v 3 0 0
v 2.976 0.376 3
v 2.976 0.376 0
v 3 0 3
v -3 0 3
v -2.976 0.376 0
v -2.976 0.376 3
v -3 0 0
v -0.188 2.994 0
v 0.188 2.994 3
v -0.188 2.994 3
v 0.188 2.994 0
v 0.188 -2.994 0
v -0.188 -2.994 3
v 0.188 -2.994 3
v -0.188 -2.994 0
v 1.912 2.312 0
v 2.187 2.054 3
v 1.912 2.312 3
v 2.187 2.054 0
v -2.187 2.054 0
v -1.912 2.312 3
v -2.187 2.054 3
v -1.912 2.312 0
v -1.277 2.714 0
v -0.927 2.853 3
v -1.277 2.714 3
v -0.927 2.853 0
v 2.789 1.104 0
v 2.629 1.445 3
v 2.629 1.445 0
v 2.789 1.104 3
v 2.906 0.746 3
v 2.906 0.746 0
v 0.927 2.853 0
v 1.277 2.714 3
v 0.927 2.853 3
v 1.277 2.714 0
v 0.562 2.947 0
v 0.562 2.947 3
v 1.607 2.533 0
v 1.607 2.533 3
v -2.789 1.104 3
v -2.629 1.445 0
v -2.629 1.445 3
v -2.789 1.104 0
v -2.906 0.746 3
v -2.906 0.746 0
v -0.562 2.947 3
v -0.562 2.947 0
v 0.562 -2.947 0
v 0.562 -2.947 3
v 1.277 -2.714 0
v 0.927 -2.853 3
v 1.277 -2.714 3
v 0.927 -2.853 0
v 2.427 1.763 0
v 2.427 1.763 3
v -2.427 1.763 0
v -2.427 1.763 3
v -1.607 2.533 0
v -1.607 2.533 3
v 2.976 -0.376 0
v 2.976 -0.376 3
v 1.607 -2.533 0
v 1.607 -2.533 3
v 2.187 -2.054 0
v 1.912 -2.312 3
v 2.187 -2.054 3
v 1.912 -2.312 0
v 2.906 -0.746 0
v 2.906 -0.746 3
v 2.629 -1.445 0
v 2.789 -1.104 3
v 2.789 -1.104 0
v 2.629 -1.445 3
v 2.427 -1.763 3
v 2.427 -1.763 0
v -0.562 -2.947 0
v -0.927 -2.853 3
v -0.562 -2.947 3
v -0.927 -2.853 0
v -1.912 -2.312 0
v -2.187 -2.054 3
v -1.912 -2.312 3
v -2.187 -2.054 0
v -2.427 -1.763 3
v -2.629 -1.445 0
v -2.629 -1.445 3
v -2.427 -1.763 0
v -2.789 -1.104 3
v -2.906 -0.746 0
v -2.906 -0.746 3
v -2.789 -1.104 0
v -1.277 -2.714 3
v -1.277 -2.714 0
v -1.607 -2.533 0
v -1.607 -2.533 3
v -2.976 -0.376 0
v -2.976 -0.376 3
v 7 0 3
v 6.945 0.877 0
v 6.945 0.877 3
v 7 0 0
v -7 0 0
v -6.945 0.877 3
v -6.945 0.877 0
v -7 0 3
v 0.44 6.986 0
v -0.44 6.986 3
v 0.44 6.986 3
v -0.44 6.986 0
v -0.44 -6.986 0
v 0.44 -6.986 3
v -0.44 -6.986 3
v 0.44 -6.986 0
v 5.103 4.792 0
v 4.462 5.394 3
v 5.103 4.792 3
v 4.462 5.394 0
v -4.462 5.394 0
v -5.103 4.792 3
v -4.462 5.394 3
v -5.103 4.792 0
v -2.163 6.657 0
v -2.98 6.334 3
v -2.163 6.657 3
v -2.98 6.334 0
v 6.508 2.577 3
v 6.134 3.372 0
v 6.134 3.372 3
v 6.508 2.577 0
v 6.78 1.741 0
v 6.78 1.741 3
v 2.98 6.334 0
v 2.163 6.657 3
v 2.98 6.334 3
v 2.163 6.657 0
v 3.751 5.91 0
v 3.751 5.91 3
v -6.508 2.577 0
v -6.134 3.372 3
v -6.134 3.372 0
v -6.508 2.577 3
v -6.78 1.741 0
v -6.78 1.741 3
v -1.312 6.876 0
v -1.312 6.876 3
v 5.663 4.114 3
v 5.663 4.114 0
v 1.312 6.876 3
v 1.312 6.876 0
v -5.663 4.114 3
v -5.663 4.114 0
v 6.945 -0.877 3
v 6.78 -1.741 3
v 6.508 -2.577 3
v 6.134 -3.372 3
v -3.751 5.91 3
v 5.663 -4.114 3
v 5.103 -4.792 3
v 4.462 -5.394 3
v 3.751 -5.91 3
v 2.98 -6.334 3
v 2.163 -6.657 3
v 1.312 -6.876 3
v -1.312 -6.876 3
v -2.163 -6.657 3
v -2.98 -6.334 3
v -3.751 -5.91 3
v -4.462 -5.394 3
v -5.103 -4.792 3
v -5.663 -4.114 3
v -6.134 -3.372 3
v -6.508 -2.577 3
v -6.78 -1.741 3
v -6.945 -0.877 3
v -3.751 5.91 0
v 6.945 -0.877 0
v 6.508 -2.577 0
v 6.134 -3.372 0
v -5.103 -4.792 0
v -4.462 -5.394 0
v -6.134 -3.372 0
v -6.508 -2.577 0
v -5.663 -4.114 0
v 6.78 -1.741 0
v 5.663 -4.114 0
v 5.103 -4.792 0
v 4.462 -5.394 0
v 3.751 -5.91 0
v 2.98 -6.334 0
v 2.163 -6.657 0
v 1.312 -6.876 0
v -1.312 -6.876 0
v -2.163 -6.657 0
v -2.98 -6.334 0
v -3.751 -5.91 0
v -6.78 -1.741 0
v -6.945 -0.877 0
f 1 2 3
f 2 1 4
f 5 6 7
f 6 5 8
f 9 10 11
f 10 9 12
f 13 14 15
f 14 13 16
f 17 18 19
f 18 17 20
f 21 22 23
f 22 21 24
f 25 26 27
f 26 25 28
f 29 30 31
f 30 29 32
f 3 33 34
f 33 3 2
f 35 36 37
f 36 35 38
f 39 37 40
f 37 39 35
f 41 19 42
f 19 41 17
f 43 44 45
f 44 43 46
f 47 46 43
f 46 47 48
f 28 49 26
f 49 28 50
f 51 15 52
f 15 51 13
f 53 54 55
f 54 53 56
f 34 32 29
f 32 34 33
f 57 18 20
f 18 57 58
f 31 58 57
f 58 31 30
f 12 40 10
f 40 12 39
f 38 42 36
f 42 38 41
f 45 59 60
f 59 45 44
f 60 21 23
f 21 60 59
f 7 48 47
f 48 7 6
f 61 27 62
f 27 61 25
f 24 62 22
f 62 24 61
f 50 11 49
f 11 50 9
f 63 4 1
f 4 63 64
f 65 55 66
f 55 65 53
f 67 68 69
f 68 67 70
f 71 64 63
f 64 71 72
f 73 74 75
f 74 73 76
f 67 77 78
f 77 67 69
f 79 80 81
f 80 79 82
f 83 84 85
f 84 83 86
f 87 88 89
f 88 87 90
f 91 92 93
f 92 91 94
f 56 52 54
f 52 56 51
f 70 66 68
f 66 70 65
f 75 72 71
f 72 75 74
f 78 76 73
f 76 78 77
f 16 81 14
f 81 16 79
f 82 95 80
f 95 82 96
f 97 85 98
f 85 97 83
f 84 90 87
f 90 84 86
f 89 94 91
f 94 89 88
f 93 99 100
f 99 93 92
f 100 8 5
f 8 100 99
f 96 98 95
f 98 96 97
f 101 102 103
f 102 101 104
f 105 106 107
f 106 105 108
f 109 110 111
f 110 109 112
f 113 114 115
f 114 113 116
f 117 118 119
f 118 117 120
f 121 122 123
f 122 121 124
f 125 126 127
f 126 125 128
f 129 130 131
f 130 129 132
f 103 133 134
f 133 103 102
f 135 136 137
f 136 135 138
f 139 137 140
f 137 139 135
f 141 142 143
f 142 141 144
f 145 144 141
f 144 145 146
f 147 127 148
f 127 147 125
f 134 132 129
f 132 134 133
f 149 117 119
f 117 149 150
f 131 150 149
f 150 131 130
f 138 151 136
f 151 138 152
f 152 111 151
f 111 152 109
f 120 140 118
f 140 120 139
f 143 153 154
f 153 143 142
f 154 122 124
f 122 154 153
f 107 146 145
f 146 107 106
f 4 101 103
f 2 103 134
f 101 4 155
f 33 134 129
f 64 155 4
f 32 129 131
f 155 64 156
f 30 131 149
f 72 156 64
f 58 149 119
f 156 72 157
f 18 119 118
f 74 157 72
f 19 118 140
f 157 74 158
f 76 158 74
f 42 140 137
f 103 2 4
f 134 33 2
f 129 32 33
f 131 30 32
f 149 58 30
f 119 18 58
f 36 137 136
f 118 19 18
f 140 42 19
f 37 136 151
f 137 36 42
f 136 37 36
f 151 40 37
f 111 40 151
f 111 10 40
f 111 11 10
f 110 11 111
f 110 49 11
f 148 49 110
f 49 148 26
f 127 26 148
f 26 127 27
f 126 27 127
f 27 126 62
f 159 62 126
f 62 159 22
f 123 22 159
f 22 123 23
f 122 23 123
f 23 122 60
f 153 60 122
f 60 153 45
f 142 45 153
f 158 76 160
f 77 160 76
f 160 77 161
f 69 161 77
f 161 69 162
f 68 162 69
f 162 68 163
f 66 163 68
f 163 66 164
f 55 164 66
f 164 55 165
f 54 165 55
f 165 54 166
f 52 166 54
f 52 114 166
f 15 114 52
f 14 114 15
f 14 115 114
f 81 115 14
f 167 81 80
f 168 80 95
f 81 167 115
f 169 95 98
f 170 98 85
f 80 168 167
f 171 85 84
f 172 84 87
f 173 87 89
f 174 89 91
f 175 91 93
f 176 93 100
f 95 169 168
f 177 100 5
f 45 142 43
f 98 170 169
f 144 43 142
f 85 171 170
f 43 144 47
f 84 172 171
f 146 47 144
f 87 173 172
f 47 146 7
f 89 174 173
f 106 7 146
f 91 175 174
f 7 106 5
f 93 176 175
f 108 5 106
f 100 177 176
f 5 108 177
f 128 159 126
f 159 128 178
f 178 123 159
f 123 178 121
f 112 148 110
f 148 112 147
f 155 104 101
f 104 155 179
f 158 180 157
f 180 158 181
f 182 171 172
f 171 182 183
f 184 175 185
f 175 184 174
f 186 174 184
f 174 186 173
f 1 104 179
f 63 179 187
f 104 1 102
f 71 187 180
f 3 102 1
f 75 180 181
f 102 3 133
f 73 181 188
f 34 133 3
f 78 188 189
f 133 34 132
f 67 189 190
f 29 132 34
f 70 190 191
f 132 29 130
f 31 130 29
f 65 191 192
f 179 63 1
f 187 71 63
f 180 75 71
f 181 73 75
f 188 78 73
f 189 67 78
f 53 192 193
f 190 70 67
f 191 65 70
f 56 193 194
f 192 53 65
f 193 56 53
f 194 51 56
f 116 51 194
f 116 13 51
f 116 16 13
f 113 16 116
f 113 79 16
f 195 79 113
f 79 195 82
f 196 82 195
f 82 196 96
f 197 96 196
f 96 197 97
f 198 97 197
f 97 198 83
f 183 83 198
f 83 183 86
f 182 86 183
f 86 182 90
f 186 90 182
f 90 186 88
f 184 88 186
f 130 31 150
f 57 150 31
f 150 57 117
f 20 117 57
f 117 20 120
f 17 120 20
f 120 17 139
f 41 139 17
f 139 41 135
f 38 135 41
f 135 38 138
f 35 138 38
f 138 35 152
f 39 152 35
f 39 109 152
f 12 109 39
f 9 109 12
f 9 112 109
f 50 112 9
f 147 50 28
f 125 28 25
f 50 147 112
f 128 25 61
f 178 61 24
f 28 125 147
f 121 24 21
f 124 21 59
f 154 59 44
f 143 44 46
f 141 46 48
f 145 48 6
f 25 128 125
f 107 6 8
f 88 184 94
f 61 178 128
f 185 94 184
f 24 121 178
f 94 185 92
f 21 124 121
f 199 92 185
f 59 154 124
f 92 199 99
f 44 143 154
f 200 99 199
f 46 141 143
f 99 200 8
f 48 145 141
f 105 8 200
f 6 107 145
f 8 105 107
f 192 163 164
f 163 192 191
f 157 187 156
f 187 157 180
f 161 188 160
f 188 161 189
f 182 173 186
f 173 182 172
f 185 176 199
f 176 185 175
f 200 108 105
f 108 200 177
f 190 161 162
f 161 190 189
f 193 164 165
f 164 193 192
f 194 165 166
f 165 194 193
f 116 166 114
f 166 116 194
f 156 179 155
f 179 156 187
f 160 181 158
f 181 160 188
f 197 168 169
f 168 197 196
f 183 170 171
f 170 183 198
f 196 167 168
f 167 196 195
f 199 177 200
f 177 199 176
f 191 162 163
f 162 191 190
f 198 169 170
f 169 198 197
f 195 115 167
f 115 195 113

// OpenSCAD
$fn = 50;


difference() {
	union() {
		cylinder(h = 3, r = 7.0000000000);
	}
	union() {
		translate(v = [0, 0, -100]) {
			cylinder(h = 200, r = 3.0000000000);
		}
		translate(v = [0, 0, -100]) {
			cylinder(h = 200, r = 1.5000000000);
		}
	}
}
